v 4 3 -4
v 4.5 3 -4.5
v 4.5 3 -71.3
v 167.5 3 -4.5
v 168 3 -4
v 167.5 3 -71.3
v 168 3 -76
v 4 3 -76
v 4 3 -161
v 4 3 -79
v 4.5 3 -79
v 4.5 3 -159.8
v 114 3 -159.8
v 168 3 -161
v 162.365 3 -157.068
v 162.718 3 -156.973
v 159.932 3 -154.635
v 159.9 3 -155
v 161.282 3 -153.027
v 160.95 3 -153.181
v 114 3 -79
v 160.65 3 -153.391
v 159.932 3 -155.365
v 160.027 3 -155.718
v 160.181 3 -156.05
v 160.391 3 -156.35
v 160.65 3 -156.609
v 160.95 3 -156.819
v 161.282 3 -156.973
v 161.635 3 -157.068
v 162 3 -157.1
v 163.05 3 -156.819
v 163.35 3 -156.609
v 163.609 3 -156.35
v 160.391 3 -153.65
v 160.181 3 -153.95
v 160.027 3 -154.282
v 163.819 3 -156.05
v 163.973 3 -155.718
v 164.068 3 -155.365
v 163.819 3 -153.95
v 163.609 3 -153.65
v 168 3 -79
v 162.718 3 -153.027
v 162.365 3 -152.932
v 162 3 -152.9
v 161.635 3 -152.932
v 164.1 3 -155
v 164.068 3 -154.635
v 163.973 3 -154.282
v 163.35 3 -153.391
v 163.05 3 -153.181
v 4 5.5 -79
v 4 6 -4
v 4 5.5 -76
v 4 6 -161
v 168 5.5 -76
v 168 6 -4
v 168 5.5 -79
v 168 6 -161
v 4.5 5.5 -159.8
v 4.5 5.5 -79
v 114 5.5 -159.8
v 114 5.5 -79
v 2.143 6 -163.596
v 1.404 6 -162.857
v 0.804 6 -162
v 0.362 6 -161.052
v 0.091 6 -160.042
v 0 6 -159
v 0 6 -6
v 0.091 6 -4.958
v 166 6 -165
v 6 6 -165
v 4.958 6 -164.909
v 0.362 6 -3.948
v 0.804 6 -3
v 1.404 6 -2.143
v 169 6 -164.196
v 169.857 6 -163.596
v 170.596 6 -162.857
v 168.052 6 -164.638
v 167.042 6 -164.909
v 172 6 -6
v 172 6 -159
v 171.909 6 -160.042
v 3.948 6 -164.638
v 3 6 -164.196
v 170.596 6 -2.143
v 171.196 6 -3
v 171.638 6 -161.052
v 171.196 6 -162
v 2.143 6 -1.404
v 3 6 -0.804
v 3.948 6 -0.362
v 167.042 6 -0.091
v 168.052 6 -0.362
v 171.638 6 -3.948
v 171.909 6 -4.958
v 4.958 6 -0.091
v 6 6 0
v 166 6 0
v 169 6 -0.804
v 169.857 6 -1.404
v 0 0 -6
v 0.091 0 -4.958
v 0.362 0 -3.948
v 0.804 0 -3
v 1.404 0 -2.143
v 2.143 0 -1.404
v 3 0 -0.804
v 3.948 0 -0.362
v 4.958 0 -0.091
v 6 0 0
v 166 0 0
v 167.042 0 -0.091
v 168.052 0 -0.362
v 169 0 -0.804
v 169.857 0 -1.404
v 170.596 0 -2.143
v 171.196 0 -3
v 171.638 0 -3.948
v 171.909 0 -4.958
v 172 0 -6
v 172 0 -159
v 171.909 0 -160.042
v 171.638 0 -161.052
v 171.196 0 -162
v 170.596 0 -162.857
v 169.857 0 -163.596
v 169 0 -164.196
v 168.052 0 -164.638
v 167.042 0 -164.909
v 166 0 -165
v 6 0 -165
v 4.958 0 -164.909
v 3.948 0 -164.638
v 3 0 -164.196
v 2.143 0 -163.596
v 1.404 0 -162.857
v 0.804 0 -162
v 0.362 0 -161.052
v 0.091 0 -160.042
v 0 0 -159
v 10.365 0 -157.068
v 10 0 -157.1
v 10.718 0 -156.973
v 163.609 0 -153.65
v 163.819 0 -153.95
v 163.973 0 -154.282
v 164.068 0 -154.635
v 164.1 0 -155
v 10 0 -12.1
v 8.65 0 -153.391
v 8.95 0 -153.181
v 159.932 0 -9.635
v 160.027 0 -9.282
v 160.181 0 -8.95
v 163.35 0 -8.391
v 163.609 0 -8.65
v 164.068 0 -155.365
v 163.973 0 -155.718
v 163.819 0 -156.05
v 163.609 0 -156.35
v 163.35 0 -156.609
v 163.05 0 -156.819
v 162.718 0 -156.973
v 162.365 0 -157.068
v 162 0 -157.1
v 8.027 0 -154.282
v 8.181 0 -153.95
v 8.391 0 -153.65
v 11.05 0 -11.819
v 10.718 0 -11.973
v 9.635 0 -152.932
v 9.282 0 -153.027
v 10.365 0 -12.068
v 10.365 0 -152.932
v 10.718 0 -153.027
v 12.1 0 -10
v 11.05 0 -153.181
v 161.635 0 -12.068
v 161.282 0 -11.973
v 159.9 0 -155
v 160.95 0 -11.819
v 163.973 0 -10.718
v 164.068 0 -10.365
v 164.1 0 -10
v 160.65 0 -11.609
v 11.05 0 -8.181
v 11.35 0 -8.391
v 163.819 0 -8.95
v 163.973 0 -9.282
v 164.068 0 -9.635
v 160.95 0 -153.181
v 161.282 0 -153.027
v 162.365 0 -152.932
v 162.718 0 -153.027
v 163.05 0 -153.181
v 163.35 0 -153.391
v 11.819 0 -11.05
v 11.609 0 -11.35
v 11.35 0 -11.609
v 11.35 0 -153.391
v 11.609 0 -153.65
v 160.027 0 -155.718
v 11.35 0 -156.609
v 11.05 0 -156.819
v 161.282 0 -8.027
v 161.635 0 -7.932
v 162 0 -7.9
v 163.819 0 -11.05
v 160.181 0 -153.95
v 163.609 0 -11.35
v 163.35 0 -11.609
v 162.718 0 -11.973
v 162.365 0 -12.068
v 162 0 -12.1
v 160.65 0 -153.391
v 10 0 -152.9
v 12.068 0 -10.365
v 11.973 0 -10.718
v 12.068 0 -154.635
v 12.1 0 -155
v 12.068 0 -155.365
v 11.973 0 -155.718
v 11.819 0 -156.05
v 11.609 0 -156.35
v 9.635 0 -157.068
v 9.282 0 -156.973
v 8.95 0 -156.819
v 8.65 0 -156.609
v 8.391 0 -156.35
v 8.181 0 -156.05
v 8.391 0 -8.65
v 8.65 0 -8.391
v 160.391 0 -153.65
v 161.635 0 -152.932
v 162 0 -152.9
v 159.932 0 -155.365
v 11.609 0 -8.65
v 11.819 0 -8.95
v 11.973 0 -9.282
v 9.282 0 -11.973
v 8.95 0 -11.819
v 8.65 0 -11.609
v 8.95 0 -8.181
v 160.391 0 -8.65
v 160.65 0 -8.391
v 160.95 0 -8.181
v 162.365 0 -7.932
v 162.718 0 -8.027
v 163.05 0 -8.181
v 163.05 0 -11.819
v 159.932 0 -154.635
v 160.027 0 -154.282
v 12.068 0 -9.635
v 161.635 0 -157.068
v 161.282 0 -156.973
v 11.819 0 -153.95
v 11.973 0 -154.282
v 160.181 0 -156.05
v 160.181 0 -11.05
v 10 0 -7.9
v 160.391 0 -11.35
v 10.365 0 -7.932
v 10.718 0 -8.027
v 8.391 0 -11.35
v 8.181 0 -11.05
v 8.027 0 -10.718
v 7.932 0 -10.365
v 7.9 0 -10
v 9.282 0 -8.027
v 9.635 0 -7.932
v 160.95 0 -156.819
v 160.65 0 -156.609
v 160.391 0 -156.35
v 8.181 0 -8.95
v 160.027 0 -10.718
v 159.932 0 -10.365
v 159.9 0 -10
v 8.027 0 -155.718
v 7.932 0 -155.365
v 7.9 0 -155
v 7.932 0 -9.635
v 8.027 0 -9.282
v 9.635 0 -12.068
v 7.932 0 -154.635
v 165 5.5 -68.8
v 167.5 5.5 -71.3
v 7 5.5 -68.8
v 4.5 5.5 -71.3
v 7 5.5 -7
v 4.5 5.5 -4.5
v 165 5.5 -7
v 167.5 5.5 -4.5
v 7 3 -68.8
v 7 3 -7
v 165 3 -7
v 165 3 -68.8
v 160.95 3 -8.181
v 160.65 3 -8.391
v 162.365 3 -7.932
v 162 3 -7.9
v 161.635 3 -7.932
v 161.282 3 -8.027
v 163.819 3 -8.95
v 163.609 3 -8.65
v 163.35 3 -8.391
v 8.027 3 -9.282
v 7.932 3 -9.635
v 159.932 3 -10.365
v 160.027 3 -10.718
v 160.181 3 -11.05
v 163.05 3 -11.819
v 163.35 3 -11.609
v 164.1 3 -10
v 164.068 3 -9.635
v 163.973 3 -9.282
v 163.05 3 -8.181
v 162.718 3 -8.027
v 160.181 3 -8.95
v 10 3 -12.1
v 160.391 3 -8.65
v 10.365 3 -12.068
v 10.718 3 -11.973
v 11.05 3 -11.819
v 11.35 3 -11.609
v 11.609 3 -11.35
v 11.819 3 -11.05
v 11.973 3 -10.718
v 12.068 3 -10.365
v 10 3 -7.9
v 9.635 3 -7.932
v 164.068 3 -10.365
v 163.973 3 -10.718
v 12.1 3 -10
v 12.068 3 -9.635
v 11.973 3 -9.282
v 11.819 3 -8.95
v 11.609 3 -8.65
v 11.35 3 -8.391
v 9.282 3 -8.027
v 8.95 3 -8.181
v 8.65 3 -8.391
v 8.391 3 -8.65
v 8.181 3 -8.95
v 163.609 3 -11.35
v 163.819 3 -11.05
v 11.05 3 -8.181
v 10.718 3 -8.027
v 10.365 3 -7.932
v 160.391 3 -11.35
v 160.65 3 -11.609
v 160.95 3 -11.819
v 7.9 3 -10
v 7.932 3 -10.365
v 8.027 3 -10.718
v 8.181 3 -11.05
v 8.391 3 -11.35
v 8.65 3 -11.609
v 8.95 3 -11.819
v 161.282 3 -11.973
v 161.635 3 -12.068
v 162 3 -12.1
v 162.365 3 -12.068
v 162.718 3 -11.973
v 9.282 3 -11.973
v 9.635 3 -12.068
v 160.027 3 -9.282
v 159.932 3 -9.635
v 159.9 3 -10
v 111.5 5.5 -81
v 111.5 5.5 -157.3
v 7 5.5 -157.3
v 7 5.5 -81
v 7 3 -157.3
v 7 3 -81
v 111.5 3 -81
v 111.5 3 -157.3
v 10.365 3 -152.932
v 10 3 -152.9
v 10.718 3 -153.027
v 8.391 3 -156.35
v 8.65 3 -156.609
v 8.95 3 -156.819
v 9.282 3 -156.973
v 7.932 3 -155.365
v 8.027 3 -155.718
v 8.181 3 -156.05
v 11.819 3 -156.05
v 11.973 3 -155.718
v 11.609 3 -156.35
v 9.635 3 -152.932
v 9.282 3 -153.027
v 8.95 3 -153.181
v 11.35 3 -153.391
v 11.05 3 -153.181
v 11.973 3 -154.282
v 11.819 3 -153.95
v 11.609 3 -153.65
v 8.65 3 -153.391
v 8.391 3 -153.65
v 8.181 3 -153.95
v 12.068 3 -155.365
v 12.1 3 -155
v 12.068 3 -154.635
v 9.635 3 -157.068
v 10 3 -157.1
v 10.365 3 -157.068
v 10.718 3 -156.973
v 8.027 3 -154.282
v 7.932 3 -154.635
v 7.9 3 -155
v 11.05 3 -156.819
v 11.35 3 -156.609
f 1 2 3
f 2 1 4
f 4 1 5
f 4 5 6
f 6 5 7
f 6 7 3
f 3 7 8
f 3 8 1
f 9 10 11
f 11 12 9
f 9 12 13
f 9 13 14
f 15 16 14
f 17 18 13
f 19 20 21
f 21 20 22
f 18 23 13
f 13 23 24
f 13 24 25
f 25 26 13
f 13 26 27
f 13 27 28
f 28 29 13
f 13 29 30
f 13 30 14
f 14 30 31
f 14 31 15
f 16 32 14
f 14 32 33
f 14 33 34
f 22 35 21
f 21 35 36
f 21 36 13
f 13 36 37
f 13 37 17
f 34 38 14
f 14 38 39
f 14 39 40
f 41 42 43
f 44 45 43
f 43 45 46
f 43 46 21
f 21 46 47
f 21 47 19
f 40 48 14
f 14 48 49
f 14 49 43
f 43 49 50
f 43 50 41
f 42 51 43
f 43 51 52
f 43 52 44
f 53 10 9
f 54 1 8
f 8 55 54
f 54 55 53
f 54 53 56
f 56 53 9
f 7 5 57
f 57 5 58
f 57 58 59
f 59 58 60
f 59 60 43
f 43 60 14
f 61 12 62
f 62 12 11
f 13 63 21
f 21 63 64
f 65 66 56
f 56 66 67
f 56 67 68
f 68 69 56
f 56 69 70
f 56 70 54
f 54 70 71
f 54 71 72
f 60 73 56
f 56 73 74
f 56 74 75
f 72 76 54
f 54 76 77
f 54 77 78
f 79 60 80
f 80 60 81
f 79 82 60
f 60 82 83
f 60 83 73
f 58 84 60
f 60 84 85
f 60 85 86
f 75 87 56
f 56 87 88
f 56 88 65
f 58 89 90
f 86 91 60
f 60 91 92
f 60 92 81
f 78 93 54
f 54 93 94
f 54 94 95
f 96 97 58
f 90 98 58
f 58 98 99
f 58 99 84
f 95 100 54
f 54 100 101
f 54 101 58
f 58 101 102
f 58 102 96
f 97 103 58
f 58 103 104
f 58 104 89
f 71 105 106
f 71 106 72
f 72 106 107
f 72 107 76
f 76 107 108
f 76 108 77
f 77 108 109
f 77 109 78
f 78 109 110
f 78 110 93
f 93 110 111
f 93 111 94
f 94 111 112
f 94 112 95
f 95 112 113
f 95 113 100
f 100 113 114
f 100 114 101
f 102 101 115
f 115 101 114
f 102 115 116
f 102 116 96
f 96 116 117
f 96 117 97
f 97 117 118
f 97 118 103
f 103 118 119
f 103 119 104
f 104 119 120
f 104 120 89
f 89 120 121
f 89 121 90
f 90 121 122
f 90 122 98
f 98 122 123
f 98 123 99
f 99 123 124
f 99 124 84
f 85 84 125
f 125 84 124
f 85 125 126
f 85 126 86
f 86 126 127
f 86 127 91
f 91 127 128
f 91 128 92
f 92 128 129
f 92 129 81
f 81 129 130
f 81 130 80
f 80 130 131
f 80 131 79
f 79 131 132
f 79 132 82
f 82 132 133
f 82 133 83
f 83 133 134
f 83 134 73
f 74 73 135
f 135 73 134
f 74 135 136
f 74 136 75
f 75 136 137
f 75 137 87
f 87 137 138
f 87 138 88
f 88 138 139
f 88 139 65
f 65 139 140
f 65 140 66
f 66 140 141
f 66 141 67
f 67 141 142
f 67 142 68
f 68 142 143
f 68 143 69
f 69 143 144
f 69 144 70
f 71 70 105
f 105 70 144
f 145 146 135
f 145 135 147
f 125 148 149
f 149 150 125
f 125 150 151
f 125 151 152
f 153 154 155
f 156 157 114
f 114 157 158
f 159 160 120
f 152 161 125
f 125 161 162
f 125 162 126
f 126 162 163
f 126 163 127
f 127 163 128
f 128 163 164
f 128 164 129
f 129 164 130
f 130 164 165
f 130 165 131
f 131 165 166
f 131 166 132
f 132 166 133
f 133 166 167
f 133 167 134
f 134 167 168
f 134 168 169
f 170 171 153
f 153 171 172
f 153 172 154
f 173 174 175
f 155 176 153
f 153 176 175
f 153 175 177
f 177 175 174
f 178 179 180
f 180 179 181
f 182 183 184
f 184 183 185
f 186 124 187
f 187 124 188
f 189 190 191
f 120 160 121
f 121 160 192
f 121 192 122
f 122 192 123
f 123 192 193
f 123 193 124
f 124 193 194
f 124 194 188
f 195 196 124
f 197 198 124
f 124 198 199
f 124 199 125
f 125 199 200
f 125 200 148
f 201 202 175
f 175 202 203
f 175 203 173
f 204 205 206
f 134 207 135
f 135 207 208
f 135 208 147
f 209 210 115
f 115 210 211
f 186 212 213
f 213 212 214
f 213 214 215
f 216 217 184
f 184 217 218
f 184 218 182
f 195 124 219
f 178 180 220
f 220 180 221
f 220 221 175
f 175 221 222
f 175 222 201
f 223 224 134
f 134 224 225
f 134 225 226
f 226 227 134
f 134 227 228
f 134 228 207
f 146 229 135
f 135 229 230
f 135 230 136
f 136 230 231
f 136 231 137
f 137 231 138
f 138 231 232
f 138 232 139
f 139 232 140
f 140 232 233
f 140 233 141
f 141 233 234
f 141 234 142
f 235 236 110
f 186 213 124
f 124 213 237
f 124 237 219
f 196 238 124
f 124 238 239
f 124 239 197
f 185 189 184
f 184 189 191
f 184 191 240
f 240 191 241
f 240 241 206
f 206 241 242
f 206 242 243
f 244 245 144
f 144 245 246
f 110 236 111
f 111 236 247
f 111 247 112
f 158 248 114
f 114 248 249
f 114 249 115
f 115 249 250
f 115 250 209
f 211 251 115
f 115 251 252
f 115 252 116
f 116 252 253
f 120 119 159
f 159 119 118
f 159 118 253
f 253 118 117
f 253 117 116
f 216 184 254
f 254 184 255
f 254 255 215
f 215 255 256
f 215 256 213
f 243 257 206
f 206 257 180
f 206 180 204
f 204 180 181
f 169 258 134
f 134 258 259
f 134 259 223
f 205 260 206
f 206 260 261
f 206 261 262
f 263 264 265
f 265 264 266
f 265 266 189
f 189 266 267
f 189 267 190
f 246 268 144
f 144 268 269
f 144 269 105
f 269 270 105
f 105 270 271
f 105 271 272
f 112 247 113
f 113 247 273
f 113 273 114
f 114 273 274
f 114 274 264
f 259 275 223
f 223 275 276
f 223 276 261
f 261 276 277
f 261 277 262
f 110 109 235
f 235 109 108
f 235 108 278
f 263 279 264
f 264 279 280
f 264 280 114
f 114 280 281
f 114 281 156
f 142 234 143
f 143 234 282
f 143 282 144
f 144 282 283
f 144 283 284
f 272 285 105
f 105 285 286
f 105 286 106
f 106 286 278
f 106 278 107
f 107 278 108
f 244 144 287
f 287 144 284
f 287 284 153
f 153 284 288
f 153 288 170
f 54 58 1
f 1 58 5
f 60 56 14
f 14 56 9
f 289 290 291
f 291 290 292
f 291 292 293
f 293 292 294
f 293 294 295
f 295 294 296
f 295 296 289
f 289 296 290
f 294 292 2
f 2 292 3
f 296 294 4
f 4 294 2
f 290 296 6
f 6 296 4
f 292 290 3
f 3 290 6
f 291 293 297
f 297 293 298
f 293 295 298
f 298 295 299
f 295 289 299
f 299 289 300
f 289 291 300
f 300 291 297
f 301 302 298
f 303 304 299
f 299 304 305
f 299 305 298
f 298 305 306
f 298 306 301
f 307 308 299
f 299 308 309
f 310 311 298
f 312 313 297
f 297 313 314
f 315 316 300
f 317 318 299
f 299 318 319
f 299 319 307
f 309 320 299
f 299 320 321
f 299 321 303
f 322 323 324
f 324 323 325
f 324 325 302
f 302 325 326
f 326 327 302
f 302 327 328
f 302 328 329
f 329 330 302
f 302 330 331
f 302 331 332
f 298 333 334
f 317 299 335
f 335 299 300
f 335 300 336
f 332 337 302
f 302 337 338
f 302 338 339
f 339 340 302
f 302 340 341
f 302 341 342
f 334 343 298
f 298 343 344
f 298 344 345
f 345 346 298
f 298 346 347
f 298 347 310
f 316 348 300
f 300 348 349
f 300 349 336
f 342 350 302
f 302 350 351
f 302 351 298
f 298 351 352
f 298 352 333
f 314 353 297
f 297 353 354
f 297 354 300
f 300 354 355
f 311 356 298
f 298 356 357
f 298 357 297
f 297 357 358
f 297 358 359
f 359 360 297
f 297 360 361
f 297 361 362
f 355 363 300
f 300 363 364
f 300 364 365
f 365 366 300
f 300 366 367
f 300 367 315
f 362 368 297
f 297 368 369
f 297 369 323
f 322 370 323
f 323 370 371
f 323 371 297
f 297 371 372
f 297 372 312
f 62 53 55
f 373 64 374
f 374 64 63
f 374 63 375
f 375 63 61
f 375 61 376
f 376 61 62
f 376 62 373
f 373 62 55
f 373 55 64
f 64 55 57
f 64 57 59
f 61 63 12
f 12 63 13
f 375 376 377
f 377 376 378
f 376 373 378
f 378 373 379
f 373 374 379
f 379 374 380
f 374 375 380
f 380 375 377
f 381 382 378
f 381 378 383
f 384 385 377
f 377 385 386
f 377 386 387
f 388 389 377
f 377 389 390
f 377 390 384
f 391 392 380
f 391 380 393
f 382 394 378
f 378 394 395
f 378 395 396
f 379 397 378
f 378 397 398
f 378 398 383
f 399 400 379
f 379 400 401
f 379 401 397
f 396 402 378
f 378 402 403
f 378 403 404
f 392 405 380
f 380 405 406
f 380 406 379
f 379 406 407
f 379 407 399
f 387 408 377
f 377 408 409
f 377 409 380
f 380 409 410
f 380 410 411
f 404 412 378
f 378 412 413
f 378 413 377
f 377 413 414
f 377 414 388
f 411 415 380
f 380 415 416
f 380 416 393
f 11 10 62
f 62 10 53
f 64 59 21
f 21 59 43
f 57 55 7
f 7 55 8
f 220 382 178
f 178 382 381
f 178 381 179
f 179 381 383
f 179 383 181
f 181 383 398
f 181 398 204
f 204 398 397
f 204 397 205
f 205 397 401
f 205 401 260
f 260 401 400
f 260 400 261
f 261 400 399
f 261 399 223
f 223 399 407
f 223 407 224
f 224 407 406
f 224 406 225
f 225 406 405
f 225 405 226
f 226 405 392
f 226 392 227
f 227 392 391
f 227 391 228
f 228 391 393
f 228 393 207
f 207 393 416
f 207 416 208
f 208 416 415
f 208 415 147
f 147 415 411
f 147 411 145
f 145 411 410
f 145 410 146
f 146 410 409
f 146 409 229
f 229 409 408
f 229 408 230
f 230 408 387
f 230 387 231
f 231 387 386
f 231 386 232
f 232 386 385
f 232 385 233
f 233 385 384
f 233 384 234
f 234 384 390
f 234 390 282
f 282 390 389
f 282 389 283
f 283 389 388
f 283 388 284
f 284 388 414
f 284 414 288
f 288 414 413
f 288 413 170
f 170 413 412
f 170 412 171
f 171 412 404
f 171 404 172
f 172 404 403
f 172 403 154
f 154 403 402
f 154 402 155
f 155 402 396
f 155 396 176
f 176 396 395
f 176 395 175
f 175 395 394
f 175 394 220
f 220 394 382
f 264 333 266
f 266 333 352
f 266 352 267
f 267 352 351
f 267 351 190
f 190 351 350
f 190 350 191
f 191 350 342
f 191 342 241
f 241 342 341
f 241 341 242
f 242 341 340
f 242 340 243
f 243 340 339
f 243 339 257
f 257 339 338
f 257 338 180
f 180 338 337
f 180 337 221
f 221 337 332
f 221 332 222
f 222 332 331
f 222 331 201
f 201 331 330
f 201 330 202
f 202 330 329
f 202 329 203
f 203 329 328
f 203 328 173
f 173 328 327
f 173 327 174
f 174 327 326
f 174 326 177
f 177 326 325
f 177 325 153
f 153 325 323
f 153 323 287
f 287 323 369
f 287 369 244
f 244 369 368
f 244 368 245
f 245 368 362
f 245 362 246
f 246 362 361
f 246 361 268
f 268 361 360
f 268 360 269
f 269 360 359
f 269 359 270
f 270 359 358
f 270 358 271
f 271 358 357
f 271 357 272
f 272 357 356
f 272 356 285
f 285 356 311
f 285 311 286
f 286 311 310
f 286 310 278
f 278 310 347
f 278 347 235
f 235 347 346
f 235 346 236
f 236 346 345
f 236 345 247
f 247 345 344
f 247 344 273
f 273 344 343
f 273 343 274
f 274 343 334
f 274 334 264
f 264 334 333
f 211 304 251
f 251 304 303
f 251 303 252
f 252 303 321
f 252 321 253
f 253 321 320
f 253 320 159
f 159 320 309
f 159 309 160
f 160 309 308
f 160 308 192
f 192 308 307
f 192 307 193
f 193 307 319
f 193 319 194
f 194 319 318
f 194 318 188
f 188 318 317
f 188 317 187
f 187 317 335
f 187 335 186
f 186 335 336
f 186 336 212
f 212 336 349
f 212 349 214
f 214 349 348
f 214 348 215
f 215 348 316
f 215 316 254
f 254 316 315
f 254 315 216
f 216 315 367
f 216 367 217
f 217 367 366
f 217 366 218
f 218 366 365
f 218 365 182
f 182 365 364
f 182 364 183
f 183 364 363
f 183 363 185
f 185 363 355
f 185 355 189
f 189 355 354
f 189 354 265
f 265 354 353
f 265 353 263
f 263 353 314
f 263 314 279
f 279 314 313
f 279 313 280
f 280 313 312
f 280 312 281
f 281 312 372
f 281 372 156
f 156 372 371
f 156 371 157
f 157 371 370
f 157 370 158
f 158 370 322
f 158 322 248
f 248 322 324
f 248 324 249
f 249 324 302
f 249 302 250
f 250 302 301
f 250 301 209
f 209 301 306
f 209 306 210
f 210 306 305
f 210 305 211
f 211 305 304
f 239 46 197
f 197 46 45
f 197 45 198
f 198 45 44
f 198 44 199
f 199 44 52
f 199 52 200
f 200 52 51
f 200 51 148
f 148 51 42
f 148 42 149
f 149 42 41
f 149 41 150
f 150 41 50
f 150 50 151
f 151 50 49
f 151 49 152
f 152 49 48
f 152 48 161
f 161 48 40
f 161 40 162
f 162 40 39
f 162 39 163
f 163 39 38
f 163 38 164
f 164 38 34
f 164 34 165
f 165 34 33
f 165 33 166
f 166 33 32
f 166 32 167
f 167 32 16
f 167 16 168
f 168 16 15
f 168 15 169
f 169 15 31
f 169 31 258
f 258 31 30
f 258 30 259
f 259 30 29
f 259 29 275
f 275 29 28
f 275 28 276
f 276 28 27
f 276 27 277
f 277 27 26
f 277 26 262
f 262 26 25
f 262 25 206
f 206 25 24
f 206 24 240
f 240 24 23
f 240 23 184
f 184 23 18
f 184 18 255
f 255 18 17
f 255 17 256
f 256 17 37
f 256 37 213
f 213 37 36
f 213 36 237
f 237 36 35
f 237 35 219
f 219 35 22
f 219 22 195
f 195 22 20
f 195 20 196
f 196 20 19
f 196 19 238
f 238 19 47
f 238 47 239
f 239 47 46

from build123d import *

# Parameters (mm, degrees)
TRAY_BODY_DEPTH              = 6
SK_POCKET_W                  = 164
SK_POCKET_H                  = 157
TRAY_POCKET_DEPTH            = 239.365265926
SK_ESP32GUIDE_W              = 163
SK_ESP32GUIDE_H              = 66.8
SK_ESP32GUIDE_W_2            = 158
SK_ESP32GUIDE_H_2            = 61.8
ESP32_HOUSING_GUIDE_DEPTH    = 2.5
SK_PI5GUIDE_W                = 109.5
SK_PI5GUIDE_H                = 81.3
SK_PI5GUIDE_W_2              = 104.5
SK_PI5GUIDE_H_2              = 76.3
PI5_CAGE_GUIDE_DEPTH         = 2.5
SK_DIVIDER_W                 = 164
SK_DIVIDER_H                 = 3
CENTER_DIVIDER_DEPTH         = 2.5
M4_MOUNTING_HOLES_DEPTH      = 239.421894968
M4_MOUNTING_HOLES_DEPTH_BACK = 239.421894968
SK_MOUNTHOLES_R              = 2.1


with BuildPart() as part:
    # Sk_Outline → Tray Body (new body)
    with BuildSketch(Plane(origin=(0, 0, 0), x_dir=(1, 0, 0), z_dir=(0, 1, 0))):
        with BuildLine():
            Line((6, 0), (166, 0))
            ThreePointArc((166, 0), (170.242640687, 1.757359313), (172, 6))
            Line((172, 6), (172, 159))
            ThreePointArc((172, 159), (170.242640687, 163.242640687), (166, 165))
            Line((166, 165), (6, 165))
            ThreePointArc((6, 165), (1.757359313, 163.242640687), (0, 159))
            Line((0, 159), (0, 6))
            ThreePointArc((0, 6), (1.757359313, 1.757359313), (6, 0))
        make_face()
    extrude(amount=TRAY_BODY_DEPTH)

    # Sk_Pocket → Tray Pocket (cut, through all)
    with BuildSketch(Plane(origin=(0, 3, 0), x_dir=(1, 0, 0), z_dir=(0, 1, 0))):
        with Locations((86, 82.5)):
            Rectangle(SK_POCKET_W, SK_POCKET_H)
    extrude(amount=TRAY_POCKET_DEPTH, mode=Mode.SUBTRACT)

    # Sk_ESP32Guide → ESP32 Housing Guide (add)
    with BuildSketch(Plane(origin=(0, 3, 0), x_dir=(1, 0, 0), z_dir=(0, 1, 0))):
        with Locations((86, 37.9)):
            Rectangle(SK_ESP32GUIDE_W, SK_ESP32GUIDE_H)
        with Locations((86, 37.9)):
            Rectangle(SK_ESP32GUIDE_W_2, SK_ESP32GUIDE_H_2, mode=Mode.SUBTRACT)
    extrude(amount=ESP32_HOUSING_GUIDE_DEPTH)

    # Sk_Pi5Guide → Pi5 Cage Guide (add)
    with BuildSketch(Plane(origin=(0, 3, 0), x_dir=(1, 0, 0), z_dir=(0, 1, 0))):
        with Locations((59.25, 119.15)):
            Rectangle(SK_PI5GUIDE_W, SK_PI5GUIDE_H)
        with Locations((59.25, 119.15)):
            Rectangle(SK_PI5GUIDE_W_2, SK_PI5GUIDE_H_2, mode=Mode.SUBTRACT)
    extrude(amount=PI5_CAGE_GUIDE_DEPTH)

    # Sk_Divider → Center Divider (add)
    with BuildSketch(Plane(origin=(0, 3, 0), x_dir=(1, 0, 0), z_dir=(0, 1, 0))):
        with Locations((86, 77.5)):
            Rectangle(SK_DIVIDER_W, SK_DIVIDER_H)
    extrude(amount=CENTER_DIVIDER_DEPTH)

    # Sk_MountHoles → M4 Mounting Holes (cut, two sides: drawn at the far end of the back side and taken through both)
    with BuildSketch(Plane(origin=(0, 0, 0), x_dir=(1, 0, 0), z_dir=(0, 1, 0)).offset(-M4_MOUNTING_HOLES_DEPTH_BACK)):
        with Locations(Location((10, 10, 0), (0, 0, 270))):
            Circle(SK_MOUNTHOLES_R)
        with Locations(Location((10, 155, 0), (0, 0, 270))):
            Circle(SK_MOUNTHOLES_R)
        with Locations(Location((162, 10, 0), (0, 0, 270))):
            Circle(SK_MOUNTHOLES_R)
        with Locations(Location((162, 155, 0), (0, 0, 270))):
            Circle(SK_MOUNTHOLES_R)
    extrude(amount=M4_MOUNTING_HOLES_DEPTH + M4_MOUNTING_HOLES_DEPTH_BACK, mode=Mode.SUBTRACT)


solid = part.part
